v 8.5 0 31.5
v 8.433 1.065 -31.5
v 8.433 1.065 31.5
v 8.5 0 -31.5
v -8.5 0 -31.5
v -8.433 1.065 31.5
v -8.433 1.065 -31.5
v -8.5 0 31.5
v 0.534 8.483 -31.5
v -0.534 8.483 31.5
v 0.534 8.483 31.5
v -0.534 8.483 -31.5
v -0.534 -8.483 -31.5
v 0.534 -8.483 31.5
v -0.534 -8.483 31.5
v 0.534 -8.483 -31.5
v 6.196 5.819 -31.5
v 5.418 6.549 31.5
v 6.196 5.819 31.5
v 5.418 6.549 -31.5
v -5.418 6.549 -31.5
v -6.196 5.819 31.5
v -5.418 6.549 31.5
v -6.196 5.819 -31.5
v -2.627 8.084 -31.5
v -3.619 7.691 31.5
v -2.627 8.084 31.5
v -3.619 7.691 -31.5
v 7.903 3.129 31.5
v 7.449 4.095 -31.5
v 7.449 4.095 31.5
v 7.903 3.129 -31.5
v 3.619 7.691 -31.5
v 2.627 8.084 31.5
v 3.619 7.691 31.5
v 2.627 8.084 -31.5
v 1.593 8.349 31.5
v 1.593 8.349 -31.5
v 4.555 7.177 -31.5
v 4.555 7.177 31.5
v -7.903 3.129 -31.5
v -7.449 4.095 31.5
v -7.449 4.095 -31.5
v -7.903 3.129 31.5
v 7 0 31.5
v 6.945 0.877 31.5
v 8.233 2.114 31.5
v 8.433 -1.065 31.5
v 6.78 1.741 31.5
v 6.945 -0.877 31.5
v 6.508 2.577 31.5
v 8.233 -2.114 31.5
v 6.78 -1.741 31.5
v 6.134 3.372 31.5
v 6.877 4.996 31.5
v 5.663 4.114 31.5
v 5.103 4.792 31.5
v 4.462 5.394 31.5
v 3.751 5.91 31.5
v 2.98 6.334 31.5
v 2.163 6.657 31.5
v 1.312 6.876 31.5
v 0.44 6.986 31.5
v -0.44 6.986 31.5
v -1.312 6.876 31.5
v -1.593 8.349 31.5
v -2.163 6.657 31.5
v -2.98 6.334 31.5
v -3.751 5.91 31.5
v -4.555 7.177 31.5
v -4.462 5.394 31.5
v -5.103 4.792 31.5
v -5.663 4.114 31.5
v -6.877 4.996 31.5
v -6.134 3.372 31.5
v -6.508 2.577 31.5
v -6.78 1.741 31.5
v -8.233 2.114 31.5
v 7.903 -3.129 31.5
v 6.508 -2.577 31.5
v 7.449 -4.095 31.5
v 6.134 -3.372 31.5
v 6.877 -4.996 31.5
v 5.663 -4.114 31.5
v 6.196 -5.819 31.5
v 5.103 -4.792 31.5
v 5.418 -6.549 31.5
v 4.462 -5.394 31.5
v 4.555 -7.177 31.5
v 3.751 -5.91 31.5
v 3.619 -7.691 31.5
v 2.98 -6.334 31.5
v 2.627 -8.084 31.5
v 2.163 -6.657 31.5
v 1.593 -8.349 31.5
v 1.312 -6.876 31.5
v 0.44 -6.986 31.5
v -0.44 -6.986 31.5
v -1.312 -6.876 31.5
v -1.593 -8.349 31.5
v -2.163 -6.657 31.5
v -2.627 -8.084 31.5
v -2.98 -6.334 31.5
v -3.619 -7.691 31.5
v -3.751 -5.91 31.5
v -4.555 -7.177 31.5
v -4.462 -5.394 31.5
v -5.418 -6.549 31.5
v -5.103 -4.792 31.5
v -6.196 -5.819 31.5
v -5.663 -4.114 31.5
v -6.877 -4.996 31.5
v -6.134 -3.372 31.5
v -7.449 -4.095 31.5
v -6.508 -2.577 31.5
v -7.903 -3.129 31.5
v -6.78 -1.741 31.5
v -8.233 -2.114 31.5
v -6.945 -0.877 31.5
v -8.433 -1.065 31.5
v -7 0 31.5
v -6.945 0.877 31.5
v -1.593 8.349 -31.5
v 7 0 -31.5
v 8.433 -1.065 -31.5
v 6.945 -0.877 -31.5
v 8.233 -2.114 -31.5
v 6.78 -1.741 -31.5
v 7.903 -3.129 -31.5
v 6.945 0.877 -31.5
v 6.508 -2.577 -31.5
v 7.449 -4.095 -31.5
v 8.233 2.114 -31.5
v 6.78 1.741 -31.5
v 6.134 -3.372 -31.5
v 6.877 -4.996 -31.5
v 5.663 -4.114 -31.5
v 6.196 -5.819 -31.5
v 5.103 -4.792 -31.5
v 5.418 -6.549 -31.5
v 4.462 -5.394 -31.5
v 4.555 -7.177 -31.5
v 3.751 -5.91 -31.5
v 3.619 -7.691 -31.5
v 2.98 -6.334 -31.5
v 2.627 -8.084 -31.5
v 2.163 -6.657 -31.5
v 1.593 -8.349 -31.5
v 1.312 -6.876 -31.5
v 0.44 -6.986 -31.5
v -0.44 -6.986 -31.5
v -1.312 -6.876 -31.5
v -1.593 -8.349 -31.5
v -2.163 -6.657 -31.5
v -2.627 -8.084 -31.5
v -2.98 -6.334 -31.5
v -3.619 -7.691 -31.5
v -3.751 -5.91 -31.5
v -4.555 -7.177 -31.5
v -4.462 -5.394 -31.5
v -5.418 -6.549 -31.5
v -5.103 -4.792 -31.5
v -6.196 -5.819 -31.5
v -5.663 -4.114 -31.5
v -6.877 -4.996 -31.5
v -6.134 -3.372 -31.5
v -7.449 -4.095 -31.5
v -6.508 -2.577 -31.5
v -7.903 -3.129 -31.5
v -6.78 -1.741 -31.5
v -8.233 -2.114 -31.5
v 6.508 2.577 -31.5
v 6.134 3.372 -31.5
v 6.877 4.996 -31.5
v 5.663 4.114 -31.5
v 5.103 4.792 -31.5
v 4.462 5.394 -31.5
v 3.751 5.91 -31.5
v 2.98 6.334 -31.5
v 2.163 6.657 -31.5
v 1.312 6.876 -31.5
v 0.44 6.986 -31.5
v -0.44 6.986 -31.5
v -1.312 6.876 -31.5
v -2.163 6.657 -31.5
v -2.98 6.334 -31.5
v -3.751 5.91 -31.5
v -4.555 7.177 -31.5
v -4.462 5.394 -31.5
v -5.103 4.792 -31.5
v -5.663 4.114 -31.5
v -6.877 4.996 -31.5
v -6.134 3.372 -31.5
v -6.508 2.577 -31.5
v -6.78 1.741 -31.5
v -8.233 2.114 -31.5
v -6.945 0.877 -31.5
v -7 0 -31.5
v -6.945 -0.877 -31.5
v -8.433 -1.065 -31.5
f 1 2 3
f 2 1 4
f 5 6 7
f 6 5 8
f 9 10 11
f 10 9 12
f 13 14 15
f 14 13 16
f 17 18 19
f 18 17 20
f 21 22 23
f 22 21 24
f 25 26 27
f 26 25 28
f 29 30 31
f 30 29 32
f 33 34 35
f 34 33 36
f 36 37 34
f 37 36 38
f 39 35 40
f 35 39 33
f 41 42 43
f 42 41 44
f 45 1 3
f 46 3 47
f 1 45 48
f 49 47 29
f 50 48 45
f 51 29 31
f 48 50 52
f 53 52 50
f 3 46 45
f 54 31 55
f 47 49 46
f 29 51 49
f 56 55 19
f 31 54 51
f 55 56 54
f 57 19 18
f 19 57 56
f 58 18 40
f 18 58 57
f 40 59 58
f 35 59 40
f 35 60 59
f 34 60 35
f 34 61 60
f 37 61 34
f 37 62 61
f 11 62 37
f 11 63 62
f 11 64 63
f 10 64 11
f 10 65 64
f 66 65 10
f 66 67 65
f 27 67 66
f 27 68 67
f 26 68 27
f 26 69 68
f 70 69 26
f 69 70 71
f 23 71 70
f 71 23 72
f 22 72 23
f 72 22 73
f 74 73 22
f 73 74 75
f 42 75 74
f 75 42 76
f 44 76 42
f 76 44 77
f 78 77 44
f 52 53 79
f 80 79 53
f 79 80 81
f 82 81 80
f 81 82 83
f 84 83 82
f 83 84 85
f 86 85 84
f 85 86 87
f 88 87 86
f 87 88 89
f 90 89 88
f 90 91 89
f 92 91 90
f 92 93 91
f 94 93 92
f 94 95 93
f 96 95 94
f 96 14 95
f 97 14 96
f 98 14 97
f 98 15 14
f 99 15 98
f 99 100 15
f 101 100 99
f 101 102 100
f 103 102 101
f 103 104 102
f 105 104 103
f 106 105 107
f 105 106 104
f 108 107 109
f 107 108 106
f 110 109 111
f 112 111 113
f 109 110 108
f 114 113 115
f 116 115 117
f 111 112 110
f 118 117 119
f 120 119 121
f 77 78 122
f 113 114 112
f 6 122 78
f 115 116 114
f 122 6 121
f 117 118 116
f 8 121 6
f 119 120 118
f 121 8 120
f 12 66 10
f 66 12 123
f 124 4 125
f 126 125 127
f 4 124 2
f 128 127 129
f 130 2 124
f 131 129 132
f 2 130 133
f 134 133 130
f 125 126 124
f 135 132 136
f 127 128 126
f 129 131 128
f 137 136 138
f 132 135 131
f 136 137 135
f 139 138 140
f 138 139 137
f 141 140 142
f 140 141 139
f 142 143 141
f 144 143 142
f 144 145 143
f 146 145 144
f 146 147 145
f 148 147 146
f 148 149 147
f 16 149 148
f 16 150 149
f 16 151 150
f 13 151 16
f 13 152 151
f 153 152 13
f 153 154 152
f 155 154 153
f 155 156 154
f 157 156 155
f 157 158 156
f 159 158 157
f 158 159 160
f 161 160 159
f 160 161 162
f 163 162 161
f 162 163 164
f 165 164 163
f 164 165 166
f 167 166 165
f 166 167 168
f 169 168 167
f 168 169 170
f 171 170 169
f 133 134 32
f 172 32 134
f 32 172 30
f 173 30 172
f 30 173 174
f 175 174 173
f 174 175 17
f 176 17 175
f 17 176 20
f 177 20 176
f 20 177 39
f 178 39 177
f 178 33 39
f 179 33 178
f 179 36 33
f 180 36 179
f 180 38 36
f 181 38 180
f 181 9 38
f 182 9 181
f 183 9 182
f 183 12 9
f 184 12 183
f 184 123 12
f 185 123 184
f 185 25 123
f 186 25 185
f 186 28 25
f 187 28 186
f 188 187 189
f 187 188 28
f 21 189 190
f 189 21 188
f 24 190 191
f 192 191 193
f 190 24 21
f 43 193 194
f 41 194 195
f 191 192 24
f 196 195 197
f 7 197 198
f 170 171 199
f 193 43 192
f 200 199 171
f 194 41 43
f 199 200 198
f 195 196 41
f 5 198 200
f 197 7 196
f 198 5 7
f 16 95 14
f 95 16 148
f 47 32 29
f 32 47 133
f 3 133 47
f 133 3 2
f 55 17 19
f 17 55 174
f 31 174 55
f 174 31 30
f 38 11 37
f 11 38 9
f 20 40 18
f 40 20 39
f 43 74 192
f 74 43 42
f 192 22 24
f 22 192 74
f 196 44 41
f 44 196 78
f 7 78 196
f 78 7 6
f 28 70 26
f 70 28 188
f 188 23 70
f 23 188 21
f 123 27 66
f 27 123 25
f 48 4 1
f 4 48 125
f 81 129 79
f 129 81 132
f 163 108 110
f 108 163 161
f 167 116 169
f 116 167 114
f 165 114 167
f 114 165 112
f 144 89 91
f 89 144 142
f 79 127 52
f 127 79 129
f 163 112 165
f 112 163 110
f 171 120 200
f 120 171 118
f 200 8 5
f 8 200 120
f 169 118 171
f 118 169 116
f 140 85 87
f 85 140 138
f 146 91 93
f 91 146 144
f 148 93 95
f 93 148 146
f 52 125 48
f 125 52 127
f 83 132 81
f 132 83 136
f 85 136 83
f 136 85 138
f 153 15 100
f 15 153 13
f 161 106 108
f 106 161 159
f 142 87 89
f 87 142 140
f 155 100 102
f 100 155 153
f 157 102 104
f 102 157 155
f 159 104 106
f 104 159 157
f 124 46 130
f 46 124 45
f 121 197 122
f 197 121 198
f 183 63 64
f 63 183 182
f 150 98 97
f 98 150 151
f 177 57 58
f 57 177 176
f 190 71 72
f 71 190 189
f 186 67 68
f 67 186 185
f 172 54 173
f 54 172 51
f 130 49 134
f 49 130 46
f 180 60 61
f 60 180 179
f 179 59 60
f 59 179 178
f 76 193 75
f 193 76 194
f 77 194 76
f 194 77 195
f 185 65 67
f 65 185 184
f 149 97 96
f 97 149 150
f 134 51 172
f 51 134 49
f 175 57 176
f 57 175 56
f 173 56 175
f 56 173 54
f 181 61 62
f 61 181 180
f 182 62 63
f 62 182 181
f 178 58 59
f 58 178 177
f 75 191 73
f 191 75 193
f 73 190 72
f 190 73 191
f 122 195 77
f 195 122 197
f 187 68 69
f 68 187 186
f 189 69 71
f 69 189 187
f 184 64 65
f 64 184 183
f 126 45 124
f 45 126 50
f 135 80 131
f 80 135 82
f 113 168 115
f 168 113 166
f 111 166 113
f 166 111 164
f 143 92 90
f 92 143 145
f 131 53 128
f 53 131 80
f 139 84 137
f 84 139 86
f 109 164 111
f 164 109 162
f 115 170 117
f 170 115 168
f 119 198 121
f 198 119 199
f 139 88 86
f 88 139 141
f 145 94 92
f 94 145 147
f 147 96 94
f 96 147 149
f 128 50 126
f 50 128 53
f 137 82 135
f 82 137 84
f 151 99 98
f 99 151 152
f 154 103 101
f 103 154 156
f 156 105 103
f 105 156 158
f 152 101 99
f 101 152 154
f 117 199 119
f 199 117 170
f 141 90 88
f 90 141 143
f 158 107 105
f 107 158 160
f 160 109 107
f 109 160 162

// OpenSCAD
$fn = 50;


difference() {
	union() {
		translate(v = [0, 0, -31.5000000000]) {
			cylinder(h = 63, r = 8.5000000000);
		}
	}
	union() {
		translate(v = [0, 0, -100.0000000000]) {
			cylinder(h = 200, r = 7);
		}
	}
}
